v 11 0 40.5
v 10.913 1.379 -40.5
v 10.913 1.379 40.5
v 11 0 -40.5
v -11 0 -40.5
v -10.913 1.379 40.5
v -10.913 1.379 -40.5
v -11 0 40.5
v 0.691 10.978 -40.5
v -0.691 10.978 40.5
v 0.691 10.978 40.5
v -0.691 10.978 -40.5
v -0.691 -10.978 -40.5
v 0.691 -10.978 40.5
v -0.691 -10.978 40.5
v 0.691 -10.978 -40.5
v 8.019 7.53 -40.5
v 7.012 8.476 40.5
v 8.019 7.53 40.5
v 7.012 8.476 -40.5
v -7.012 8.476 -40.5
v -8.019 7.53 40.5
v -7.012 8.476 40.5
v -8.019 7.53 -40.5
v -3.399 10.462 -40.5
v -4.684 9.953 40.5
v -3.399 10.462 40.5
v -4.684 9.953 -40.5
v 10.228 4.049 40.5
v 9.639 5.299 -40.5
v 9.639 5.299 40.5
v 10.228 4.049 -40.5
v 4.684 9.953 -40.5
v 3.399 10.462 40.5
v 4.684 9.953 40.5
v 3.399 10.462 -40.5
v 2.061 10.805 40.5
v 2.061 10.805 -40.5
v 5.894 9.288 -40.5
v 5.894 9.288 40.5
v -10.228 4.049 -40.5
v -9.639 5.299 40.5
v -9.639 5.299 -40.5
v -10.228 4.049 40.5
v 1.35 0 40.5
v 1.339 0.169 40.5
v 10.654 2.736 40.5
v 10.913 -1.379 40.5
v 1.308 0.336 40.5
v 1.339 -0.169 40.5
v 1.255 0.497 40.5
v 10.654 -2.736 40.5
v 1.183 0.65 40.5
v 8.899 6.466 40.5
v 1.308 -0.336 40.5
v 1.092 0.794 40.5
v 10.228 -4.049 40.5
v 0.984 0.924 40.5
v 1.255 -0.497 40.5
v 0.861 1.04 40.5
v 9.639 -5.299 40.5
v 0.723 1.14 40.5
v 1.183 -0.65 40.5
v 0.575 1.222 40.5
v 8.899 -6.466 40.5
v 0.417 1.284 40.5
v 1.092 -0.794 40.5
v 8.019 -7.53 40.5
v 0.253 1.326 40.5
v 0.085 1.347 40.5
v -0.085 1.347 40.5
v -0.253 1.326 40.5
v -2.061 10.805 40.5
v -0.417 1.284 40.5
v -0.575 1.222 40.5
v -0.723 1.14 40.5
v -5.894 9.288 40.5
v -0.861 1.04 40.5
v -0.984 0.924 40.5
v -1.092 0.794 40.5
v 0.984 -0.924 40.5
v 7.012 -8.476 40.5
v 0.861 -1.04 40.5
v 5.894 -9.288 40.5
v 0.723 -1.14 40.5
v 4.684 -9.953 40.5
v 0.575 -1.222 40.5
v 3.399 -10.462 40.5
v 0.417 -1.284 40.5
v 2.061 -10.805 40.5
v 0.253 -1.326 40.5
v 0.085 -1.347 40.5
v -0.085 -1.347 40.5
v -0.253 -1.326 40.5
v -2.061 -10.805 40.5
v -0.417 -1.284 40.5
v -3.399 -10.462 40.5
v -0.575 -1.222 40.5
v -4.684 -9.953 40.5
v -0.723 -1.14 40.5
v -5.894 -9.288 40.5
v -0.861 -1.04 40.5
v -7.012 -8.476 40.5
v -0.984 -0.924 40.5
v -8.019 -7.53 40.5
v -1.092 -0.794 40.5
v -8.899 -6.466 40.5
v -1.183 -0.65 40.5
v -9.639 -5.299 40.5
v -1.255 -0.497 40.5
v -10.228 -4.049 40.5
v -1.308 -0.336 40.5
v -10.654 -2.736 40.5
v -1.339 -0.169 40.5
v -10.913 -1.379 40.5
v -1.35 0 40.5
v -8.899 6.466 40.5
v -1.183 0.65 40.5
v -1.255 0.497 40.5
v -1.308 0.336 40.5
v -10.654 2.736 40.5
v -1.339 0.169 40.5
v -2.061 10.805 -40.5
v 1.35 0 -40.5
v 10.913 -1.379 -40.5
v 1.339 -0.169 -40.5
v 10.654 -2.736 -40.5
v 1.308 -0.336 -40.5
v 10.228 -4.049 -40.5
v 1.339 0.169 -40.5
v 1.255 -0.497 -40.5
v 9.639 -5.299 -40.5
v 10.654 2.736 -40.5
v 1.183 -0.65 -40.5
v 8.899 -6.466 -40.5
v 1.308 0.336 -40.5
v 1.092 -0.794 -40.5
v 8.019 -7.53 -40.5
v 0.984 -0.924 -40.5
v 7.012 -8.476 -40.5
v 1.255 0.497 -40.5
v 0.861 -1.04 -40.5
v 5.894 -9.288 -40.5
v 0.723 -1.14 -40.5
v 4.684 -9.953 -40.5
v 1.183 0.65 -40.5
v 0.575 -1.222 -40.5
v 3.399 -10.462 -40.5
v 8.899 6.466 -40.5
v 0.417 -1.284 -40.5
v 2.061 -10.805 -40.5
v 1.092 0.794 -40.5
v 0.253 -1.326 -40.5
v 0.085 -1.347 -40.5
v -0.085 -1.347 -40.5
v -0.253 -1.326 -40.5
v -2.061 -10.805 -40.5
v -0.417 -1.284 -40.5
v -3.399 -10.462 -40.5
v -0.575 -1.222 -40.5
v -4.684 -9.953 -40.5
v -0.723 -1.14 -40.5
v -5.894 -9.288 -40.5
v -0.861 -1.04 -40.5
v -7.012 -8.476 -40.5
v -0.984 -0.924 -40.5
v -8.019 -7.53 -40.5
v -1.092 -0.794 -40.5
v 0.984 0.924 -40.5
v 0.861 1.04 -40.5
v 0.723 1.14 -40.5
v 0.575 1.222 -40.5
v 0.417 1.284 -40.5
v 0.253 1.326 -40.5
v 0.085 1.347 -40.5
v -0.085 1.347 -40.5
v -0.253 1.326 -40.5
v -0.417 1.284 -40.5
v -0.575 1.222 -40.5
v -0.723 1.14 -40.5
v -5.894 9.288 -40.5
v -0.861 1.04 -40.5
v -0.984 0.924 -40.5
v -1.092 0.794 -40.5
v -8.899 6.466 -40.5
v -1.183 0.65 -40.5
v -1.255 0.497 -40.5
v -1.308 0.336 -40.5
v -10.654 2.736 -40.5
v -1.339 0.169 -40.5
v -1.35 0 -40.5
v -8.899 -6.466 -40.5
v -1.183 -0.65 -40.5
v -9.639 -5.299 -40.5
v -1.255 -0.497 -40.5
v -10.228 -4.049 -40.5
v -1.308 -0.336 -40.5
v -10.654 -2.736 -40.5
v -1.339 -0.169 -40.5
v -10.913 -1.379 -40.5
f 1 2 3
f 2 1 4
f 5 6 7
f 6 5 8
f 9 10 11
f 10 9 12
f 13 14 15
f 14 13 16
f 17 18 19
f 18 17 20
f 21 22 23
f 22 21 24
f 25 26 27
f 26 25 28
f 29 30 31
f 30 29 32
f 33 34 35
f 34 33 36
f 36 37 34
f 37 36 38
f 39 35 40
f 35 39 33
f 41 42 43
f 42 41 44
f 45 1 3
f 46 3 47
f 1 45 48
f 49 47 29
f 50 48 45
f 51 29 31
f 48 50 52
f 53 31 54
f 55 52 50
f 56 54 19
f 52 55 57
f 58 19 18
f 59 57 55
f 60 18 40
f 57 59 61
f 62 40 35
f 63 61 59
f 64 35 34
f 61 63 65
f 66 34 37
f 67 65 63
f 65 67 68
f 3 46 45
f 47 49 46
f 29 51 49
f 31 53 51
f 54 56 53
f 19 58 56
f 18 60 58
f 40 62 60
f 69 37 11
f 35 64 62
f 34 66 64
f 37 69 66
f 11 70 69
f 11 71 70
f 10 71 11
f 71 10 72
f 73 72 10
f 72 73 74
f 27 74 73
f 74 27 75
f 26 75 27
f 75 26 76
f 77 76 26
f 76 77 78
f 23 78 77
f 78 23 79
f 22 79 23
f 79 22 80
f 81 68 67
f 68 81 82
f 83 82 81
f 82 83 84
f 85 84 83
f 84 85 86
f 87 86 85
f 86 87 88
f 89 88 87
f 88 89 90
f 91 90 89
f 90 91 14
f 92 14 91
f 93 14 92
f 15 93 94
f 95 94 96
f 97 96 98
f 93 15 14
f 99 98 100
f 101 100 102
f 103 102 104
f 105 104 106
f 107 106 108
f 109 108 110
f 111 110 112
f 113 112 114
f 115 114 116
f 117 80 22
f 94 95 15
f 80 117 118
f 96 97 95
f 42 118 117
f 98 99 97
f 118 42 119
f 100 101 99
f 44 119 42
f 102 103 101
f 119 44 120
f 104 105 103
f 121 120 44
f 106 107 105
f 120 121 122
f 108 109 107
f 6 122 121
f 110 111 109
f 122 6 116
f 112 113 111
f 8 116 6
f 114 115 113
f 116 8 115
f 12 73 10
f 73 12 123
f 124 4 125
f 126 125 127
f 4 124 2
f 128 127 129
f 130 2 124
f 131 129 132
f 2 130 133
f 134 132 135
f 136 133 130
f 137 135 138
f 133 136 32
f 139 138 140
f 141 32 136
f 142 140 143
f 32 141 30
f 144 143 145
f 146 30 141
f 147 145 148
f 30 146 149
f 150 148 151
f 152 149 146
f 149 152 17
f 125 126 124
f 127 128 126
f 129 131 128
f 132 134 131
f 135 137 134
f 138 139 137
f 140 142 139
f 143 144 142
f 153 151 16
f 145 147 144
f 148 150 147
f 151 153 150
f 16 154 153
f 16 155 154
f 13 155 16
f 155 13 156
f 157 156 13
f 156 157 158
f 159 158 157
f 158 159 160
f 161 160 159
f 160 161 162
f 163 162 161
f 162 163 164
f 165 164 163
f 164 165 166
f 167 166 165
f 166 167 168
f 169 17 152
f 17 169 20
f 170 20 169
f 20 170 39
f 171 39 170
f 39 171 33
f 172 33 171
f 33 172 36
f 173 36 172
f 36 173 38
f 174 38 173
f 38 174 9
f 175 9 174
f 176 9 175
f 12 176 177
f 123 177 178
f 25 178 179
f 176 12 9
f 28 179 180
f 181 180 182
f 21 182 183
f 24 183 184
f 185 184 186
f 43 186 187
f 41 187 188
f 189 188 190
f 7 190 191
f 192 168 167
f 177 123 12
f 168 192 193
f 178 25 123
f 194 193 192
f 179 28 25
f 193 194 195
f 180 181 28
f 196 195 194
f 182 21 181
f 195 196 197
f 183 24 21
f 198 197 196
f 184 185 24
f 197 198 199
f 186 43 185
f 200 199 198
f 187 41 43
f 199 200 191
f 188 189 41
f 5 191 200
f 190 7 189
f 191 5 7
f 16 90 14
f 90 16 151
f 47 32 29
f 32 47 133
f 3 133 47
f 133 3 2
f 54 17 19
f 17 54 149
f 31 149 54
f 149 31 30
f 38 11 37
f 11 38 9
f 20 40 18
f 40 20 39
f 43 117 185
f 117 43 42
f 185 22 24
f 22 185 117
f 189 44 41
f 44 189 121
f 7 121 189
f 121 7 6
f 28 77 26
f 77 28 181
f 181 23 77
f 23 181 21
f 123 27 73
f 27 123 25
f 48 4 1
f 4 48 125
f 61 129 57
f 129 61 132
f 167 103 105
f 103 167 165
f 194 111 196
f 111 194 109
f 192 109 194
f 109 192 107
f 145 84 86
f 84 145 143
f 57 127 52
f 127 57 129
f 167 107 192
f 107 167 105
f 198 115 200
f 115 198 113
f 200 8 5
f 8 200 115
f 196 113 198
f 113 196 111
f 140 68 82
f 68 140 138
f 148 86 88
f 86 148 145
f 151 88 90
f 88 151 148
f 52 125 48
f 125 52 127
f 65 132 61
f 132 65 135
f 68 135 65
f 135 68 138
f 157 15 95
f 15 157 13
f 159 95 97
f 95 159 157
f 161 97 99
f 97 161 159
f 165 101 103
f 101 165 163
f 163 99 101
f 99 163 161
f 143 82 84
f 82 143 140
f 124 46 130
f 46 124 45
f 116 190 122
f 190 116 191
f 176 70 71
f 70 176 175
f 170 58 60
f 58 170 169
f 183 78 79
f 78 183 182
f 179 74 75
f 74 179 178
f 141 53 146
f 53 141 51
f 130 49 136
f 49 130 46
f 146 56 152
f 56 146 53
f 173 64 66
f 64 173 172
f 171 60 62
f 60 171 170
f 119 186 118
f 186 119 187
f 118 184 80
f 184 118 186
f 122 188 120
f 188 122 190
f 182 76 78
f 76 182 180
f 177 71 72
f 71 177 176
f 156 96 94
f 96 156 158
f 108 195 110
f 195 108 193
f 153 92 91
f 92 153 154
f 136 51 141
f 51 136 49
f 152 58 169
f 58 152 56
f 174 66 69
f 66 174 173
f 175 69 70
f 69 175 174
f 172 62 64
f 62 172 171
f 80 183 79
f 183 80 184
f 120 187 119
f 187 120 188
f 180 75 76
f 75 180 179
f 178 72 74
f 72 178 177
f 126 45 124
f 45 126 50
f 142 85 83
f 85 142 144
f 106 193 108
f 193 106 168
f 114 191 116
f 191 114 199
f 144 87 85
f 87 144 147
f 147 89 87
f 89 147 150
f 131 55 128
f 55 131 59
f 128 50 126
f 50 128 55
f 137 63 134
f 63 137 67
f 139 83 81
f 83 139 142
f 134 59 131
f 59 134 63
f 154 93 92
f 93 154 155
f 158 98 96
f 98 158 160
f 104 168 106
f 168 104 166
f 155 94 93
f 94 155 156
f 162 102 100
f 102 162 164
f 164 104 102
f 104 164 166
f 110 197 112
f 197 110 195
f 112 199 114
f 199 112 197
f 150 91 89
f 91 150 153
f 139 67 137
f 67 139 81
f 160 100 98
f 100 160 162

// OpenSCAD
$fn = 50;


difference() {
	union() {
		translate(v = [0, 0, -40.5000000000]) {
			cylinder(h = 81, r = 11.0000000000);
		}
	}
	union() {
		translate(v = [0, 0, -100.0000000000]) {
			cylinder(h = 200, r = 1.3500000000);
		}
	}
}
